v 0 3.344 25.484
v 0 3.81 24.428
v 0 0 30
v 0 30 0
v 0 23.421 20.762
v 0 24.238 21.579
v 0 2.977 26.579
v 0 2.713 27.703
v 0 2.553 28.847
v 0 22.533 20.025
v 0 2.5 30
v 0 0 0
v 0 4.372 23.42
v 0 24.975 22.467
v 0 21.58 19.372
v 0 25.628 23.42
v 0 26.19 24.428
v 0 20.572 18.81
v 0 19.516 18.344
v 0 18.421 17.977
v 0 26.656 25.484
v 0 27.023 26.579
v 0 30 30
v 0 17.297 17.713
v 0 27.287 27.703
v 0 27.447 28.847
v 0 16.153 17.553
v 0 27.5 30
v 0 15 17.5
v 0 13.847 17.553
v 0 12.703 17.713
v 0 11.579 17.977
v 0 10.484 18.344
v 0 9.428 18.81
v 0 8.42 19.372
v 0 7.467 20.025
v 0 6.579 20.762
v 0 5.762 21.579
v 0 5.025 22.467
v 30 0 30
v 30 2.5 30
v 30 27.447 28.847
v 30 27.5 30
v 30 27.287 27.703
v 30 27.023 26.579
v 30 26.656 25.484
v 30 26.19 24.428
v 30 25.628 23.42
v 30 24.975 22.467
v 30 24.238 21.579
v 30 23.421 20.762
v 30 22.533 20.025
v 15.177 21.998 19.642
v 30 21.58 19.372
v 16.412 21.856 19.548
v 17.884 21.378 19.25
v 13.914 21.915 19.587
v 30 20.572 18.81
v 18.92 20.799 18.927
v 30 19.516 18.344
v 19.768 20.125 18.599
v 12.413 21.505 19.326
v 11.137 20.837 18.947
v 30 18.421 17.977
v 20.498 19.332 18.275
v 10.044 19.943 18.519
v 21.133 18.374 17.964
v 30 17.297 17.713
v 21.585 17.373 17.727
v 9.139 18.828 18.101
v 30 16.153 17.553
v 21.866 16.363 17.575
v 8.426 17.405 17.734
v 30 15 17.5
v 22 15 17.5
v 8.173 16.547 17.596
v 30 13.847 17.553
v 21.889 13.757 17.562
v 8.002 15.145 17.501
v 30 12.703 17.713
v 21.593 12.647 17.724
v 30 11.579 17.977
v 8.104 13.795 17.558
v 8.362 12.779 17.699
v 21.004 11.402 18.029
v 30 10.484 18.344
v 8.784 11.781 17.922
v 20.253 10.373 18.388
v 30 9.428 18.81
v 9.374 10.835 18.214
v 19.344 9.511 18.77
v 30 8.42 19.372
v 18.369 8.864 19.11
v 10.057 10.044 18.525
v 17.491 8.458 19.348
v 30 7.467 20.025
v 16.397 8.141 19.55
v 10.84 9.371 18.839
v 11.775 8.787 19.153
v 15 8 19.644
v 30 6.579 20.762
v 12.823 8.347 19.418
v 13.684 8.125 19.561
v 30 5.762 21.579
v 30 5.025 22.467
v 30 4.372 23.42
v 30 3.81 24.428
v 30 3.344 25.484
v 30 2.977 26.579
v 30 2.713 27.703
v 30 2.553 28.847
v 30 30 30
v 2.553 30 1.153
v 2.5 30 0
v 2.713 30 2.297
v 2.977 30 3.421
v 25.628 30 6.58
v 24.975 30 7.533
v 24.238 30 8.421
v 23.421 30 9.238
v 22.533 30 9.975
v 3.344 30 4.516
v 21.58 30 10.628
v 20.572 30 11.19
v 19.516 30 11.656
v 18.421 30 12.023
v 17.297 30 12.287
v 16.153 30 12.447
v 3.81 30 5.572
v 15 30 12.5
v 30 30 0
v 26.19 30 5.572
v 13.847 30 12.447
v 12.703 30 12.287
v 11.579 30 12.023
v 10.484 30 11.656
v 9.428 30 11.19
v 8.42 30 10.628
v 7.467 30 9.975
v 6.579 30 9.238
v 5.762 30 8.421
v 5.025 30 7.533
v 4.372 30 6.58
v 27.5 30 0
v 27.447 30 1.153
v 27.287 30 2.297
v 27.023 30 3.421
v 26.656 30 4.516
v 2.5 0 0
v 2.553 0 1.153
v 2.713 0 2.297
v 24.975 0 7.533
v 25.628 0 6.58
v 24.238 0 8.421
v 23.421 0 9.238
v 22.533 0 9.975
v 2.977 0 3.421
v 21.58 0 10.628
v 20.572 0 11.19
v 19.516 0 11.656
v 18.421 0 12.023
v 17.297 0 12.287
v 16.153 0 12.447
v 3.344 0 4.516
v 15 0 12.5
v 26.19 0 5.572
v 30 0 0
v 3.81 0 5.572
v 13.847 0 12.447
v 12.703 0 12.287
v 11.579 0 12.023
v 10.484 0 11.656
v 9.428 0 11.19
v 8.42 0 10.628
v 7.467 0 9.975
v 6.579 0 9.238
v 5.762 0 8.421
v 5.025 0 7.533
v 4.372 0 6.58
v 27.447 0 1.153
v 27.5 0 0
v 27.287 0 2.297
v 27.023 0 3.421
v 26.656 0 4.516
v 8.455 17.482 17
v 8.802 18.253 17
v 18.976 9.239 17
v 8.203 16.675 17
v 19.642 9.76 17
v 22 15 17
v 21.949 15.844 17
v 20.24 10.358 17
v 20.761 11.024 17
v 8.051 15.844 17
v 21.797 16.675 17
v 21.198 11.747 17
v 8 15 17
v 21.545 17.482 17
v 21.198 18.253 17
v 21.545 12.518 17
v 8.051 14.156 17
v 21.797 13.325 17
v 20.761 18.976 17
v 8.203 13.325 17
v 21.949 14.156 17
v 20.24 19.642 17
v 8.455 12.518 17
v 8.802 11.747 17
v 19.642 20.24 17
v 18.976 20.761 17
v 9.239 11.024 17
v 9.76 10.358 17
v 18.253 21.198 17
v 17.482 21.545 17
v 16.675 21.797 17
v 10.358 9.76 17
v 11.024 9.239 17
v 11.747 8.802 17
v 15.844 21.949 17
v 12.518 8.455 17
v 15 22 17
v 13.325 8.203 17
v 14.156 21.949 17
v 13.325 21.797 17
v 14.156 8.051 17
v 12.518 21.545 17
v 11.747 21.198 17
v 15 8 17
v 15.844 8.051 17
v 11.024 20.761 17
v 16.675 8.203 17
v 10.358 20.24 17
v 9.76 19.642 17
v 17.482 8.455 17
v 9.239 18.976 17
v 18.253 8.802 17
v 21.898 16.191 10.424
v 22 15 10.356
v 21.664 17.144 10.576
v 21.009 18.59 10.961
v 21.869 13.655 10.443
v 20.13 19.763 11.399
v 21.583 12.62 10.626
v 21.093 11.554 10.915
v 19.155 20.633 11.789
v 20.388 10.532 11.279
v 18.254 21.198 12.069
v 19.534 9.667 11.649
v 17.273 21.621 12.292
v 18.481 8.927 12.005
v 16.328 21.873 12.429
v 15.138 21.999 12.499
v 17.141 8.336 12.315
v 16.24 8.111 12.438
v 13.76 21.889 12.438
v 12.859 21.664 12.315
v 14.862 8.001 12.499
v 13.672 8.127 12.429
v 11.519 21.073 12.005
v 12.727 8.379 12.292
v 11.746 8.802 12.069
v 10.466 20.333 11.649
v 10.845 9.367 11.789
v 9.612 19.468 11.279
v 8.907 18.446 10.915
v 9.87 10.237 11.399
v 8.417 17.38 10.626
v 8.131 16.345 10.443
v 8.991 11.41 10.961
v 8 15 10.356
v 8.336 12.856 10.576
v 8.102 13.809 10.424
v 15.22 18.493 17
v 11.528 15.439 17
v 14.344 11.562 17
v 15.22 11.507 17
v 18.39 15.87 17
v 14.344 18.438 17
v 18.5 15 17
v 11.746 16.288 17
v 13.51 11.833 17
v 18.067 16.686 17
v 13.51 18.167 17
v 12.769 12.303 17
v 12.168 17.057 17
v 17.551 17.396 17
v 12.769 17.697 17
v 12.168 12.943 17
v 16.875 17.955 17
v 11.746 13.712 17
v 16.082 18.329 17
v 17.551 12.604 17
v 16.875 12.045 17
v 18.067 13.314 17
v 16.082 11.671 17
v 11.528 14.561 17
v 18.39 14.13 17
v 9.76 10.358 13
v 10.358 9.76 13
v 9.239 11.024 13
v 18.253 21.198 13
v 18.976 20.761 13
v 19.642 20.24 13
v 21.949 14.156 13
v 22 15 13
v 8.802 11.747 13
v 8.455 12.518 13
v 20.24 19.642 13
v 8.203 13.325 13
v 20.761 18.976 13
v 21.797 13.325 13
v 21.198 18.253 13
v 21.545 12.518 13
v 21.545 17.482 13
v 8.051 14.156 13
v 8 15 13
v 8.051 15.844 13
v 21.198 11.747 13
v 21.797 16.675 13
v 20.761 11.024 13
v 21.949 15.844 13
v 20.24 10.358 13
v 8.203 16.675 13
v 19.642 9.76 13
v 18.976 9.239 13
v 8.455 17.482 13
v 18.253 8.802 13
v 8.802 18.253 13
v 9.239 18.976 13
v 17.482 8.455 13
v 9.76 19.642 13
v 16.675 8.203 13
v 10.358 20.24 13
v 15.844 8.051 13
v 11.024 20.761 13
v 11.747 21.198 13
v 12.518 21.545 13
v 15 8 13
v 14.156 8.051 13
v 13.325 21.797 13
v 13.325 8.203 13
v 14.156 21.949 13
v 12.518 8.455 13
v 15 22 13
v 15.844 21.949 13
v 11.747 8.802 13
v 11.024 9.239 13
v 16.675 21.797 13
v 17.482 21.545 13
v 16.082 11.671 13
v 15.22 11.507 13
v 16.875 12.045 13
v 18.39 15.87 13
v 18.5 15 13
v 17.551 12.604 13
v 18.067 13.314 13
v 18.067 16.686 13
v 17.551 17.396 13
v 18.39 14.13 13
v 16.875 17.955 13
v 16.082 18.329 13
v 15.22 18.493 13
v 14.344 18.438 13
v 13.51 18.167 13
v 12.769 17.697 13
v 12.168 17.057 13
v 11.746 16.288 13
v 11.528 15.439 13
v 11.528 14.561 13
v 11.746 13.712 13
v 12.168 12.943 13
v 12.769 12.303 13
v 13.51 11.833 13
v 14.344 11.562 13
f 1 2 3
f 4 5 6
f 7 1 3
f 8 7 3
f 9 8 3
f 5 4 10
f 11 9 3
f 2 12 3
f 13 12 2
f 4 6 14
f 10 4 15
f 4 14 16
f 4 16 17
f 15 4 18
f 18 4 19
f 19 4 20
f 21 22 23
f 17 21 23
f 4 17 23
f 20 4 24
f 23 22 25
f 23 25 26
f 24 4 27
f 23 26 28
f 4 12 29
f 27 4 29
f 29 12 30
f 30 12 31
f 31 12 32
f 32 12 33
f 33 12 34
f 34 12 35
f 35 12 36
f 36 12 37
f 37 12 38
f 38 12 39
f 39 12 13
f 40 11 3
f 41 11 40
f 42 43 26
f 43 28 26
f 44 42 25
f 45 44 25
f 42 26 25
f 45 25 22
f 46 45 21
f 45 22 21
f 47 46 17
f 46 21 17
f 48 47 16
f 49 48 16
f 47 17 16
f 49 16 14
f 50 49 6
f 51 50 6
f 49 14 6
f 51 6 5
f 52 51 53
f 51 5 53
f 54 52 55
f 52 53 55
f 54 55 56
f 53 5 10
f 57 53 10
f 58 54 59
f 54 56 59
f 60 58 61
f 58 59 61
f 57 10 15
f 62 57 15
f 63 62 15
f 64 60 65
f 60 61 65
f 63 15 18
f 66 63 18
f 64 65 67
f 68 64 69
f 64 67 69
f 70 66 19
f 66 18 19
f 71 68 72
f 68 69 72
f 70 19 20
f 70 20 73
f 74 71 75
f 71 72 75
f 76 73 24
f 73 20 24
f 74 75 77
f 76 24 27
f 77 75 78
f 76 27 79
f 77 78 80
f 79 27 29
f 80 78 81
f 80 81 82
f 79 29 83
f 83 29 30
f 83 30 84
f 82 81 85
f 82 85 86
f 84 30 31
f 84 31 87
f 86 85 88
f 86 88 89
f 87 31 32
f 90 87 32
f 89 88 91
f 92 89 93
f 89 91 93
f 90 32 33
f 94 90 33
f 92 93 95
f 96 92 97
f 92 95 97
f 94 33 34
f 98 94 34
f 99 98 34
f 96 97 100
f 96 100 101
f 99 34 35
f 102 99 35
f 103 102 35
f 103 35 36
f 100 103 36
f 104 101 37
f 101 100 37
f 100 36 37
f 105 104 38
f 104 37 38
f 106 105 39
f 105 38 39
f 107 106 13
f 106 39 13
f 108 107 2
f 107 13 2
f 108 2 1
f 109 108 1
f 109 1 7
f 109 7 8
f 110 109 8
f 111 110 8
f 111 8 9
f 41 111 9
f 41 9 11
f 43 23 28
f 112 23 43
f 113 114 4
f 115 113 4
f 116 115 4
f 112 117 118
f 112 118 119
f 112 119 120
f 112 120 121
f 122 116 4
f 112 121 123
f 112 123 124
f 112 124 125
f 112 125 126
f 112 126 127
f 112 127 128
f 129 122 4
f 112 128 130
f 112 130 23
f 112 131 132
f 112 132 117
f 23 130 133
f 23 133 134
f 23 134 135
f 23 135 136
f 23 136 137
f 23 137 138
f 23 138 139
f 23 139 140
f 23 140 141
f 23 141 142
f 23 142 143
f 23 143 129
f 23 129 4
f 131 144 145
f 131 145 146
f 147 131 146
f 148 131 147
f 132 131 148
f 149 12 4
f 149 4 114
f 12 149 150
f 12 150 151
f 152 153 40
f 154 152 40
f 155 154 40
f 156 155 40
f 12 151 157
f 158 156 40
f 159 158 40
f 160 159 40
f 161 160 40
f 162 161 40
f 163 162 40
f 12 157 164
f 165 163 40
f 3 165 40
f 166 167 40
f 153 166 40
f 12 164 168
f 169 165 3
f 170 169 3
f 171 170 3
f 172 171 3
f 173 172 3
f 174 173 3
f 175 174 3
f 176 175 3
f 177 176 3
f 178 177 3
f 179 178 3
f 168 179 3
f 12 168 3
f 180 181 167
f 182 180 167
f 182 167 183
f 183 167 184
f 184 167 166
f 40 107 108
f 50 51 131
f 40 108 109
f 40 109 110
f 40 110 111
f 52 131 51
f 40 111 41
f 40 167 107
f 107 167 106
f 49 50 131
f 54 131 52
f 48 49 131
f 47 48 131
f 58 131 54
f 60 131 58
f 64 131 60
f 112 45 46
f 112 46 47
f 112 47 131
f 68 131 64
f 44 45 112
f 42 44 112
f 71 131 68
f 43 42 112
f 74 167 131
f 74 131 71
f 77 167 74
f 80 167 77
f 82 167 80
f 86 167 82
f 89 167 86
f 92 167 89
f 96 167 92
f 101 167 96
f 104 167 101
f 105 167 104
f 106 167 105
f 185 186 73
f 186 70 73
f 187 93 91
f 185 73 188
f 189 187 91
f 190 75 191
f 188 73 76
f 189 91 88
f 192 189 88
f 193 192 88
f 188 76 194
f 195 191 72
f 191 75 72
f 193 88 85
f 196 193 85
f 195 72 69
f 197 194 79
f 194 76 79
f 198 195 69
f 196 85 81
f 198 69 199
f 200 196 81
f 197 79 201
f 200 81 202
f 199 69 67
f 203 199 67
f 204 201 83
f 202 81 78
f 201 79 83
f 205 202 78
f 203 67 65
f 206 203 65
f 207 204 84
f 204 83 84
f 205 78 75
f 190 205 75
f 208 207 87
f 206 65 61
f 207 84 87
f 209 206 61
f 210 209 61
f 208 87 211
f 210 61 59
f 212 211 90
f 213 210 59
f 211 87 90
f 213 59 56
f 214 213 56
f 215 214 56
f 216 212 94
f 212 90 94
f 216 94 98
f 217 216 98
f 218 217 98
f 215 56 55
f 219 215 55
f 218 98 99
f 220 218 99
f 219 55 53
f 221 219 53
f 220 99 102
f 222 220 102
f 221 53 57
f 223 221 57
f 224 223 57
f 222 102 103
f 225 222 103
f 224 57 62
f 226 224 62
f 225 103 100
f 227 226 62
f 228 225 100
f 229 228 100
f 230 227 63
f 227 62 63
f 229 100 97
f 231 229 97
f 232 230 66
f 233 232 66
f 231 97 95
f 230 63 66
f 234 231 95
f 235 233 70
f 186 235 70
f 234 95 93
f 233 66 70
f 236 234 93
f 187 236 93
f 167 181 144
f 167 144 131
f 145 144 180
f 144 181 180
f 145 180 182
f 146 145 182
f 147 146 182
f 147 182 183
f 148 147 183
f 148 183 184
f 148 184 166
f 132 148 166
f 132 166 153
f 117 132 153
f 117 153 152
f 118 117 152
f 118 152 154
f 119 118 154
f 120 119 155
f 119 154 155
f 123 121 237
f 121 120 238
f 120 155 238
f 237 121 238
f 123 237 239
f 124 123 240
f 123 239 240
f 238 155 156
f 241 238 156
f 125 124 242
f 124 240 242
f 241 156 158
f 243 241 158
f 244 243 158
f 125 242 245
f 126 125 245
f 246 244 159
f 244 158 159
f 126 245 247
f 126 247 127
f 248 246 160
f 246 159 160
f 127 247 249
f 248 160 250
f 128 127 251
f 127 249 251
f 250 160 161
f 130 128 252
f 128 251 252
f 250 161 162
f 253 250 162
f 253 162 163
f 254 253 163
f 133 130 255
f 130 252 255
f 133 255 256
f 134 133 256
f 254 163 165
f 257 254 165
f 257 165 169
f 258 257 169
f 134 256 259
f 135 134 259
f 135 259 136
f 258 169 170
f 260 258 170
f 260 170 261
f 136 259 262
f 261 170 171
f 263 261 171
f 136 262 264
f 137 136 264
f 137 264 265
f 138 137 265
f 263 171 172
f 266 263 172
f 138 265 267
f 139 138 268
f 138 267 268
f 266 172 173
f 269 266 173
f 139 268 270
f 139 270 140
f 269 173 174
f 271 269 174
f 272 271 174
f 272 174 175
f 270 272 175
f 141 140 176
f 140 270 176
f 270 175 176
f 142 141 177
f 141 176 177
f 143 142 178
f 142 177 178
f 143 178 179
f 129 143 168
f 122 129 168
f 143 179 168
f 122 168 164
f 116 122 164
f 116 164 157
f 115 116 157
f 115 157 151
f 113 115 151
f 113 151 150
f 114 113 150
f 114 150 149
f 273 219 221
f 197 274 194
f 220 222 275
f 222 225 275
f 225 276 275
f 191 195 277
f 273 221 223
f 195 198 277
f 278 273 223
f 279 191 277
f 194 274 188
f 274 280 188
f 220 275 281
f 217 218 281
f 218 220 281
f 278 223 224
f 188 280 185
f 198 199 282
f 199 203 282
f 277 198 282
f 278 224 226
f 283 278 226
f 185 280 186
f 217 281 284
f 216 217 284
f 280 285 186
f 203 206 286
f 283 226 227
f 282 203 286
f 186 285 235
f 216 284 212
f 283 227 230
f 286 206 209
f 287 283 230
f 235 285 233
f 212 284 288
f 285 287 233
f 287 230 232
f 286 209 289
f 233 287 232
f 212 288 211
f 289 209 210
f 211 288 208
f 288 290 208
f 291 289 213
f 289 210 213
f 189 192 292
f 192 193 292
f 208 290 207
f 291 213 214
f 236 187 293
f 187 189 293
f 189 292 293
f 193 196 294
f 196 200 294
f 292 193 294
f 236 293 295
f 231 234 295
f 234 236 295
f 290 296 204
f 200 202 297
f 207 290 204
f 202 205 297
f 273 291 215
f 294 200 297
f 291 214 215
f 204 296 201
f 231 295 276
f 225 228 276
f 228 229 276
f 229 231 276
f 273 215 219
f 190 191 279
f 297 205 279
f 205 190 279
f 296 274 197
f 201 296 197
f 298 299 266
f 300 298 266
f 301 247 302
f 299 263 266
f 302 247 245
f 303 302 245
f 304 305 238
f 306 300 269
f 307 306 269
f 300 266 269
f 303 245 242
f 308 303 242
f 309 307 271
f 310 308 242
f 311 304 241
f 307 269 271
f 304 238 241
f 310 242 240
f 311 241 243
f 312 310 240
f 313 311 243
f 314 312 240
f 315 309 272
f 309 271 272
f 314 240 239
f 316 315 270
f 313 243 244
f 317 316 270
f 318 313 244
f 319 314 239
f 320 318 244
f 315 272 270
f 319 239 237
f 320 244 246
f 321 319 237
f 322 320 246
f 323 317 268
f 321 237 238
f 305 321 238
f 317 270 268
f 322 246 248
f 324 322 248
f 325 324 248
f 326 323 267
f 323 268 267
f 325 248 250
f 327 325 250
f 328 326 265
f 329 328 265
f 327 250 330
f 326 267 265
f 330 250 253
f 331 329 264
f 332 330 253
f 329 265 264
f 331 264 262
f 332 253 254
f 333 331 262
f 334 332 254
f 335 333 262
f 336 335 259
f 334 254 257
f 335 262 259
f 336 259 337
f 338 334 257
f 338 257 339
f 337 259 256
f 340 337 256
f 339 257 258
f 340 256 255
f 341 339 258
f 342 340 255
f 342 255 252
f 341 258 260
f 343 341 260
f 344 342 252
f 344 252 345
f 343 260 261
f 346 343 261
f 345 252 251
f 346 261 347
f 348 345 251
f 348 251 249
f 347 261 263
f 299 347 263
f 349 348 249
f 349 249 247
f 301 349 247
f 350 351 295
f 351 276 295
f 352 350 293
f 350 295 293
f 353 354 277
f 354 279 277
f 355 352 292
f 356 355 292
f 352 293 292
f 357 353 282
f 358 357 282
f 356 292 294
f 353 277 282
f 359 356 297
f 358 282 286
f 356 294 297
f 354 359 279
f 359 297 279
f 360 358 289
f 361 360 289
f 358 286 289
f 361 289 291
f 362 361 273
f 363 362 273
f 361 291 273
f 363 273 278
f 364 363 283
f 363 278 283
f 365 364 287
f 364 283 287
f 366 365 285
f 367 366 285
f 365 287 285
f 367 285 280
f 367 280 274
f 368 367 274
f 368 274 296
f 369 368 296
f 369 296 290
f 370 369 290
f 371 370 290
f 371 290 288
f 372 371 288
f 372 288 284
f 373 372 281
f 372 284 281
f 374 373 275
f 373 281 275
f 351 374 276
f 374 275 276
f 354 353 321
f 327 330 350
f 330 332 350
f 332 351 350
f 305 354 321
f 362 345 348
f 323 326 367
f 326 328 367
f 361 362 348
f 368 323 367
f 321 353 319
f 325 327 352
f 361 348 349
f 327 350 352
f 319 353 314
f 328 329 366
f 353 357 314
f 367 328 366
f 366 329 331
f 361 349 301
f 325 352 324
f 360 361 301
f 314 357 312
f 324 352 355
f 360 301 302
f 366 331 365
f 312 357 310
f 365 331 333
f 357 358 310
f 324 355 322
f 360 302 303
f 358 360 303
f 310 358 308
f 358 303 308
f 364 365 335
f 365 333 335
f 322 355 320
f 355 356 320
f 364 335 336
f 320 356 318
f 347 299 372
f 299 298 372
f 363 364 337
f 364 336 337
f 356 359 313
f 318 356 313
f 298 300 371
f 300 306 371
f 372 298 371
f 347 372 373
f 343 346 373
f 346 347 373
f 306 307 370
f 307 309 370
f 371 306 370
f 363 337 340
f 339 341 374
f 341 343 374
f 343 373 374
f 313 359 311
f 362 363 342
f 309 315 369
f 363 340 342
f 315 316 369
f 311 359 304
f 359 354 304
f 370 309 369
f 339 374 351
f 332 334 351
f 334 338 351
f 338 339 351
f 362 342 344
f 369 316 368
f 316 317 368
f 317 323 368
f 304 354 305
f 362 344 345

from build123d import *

# Parameters (mm, degrees)
BOX_W           = 30
BOX_H           = 30
BOX_DEPTH       = 30
SKETCH_R        = 3.5
POCKET_DEPTH    = 30.001
SKETCH004_R     = 7
POCKET001_DEPTH = 13
SKETCH001_R     = 7
POCKET002_DEPTH = 13
SKETCH003_R     = 12.5
POCKET003_DEPTH = 30.001
SKETCH002_R     = 12.5
POCKET004_DEPTH = 30.001


with BuildPart() as part:
    # Box → Box (new body)
    with BuildSketch(Plane.XY):
        with Locations((15, 15)):
            Rectangle(BOX_W, BOX_H)
    extrude(amount=BOX_DEPTH)

    # Sketch → Pocket (cut, through all)
    with BuildSketch(Plane.XY.offset(30)):
        with Locations((15, 15)):
            Circle(SKETCH_R)
    extrude(amount=-POCKET_DEPTH, mode=Mode.SUBTRACT)

    # Sketch004 → Pocket001 (cut)
    with BuildSketch(Plane.XY.offset(30)):
        with Locations((15, 15)):
            Circle(SKETCH004_R)
    extrude(amount=-POCKET001_DEPTH, mode=Mode.SUBTRACT)

    # Sketch001 → Pocket002 (cut)
    with BuildSketch(Plane(origin=(0, 0, 0), x_dir=(1, 0, 0), z_dir=(0, 0, -1))):
        with Locations((15, -15)):
            Circle(SKETCH001_R)
    extrude(amount=-POCKET002_DEPTH, mode=Mode.SUBTRACT)

    # Sketch003 → Pocket003 (cut, through all)
    with BuildSketch(Plane(origin=(0, 0, 0), x_dir=(0, -1, 0), z_dir=(-1, 0, 0))):
        with Locations((-15, 30)):
            Circle(SKETCH003_R)
    extrude(amount=-POCKET003_DEPTH, mode=Mode.SUBTRACT)

    # Sketch002 → Pocket004 (cut, through all)
    with BuildSketch(Plane.XZ):
        with Locations((15, 0)):
            Circle(SKETCH002_R)
    extrude(amount=-POCKET004_DEPTH, mode=Mode.SUBTRACT)


solid = part.part
